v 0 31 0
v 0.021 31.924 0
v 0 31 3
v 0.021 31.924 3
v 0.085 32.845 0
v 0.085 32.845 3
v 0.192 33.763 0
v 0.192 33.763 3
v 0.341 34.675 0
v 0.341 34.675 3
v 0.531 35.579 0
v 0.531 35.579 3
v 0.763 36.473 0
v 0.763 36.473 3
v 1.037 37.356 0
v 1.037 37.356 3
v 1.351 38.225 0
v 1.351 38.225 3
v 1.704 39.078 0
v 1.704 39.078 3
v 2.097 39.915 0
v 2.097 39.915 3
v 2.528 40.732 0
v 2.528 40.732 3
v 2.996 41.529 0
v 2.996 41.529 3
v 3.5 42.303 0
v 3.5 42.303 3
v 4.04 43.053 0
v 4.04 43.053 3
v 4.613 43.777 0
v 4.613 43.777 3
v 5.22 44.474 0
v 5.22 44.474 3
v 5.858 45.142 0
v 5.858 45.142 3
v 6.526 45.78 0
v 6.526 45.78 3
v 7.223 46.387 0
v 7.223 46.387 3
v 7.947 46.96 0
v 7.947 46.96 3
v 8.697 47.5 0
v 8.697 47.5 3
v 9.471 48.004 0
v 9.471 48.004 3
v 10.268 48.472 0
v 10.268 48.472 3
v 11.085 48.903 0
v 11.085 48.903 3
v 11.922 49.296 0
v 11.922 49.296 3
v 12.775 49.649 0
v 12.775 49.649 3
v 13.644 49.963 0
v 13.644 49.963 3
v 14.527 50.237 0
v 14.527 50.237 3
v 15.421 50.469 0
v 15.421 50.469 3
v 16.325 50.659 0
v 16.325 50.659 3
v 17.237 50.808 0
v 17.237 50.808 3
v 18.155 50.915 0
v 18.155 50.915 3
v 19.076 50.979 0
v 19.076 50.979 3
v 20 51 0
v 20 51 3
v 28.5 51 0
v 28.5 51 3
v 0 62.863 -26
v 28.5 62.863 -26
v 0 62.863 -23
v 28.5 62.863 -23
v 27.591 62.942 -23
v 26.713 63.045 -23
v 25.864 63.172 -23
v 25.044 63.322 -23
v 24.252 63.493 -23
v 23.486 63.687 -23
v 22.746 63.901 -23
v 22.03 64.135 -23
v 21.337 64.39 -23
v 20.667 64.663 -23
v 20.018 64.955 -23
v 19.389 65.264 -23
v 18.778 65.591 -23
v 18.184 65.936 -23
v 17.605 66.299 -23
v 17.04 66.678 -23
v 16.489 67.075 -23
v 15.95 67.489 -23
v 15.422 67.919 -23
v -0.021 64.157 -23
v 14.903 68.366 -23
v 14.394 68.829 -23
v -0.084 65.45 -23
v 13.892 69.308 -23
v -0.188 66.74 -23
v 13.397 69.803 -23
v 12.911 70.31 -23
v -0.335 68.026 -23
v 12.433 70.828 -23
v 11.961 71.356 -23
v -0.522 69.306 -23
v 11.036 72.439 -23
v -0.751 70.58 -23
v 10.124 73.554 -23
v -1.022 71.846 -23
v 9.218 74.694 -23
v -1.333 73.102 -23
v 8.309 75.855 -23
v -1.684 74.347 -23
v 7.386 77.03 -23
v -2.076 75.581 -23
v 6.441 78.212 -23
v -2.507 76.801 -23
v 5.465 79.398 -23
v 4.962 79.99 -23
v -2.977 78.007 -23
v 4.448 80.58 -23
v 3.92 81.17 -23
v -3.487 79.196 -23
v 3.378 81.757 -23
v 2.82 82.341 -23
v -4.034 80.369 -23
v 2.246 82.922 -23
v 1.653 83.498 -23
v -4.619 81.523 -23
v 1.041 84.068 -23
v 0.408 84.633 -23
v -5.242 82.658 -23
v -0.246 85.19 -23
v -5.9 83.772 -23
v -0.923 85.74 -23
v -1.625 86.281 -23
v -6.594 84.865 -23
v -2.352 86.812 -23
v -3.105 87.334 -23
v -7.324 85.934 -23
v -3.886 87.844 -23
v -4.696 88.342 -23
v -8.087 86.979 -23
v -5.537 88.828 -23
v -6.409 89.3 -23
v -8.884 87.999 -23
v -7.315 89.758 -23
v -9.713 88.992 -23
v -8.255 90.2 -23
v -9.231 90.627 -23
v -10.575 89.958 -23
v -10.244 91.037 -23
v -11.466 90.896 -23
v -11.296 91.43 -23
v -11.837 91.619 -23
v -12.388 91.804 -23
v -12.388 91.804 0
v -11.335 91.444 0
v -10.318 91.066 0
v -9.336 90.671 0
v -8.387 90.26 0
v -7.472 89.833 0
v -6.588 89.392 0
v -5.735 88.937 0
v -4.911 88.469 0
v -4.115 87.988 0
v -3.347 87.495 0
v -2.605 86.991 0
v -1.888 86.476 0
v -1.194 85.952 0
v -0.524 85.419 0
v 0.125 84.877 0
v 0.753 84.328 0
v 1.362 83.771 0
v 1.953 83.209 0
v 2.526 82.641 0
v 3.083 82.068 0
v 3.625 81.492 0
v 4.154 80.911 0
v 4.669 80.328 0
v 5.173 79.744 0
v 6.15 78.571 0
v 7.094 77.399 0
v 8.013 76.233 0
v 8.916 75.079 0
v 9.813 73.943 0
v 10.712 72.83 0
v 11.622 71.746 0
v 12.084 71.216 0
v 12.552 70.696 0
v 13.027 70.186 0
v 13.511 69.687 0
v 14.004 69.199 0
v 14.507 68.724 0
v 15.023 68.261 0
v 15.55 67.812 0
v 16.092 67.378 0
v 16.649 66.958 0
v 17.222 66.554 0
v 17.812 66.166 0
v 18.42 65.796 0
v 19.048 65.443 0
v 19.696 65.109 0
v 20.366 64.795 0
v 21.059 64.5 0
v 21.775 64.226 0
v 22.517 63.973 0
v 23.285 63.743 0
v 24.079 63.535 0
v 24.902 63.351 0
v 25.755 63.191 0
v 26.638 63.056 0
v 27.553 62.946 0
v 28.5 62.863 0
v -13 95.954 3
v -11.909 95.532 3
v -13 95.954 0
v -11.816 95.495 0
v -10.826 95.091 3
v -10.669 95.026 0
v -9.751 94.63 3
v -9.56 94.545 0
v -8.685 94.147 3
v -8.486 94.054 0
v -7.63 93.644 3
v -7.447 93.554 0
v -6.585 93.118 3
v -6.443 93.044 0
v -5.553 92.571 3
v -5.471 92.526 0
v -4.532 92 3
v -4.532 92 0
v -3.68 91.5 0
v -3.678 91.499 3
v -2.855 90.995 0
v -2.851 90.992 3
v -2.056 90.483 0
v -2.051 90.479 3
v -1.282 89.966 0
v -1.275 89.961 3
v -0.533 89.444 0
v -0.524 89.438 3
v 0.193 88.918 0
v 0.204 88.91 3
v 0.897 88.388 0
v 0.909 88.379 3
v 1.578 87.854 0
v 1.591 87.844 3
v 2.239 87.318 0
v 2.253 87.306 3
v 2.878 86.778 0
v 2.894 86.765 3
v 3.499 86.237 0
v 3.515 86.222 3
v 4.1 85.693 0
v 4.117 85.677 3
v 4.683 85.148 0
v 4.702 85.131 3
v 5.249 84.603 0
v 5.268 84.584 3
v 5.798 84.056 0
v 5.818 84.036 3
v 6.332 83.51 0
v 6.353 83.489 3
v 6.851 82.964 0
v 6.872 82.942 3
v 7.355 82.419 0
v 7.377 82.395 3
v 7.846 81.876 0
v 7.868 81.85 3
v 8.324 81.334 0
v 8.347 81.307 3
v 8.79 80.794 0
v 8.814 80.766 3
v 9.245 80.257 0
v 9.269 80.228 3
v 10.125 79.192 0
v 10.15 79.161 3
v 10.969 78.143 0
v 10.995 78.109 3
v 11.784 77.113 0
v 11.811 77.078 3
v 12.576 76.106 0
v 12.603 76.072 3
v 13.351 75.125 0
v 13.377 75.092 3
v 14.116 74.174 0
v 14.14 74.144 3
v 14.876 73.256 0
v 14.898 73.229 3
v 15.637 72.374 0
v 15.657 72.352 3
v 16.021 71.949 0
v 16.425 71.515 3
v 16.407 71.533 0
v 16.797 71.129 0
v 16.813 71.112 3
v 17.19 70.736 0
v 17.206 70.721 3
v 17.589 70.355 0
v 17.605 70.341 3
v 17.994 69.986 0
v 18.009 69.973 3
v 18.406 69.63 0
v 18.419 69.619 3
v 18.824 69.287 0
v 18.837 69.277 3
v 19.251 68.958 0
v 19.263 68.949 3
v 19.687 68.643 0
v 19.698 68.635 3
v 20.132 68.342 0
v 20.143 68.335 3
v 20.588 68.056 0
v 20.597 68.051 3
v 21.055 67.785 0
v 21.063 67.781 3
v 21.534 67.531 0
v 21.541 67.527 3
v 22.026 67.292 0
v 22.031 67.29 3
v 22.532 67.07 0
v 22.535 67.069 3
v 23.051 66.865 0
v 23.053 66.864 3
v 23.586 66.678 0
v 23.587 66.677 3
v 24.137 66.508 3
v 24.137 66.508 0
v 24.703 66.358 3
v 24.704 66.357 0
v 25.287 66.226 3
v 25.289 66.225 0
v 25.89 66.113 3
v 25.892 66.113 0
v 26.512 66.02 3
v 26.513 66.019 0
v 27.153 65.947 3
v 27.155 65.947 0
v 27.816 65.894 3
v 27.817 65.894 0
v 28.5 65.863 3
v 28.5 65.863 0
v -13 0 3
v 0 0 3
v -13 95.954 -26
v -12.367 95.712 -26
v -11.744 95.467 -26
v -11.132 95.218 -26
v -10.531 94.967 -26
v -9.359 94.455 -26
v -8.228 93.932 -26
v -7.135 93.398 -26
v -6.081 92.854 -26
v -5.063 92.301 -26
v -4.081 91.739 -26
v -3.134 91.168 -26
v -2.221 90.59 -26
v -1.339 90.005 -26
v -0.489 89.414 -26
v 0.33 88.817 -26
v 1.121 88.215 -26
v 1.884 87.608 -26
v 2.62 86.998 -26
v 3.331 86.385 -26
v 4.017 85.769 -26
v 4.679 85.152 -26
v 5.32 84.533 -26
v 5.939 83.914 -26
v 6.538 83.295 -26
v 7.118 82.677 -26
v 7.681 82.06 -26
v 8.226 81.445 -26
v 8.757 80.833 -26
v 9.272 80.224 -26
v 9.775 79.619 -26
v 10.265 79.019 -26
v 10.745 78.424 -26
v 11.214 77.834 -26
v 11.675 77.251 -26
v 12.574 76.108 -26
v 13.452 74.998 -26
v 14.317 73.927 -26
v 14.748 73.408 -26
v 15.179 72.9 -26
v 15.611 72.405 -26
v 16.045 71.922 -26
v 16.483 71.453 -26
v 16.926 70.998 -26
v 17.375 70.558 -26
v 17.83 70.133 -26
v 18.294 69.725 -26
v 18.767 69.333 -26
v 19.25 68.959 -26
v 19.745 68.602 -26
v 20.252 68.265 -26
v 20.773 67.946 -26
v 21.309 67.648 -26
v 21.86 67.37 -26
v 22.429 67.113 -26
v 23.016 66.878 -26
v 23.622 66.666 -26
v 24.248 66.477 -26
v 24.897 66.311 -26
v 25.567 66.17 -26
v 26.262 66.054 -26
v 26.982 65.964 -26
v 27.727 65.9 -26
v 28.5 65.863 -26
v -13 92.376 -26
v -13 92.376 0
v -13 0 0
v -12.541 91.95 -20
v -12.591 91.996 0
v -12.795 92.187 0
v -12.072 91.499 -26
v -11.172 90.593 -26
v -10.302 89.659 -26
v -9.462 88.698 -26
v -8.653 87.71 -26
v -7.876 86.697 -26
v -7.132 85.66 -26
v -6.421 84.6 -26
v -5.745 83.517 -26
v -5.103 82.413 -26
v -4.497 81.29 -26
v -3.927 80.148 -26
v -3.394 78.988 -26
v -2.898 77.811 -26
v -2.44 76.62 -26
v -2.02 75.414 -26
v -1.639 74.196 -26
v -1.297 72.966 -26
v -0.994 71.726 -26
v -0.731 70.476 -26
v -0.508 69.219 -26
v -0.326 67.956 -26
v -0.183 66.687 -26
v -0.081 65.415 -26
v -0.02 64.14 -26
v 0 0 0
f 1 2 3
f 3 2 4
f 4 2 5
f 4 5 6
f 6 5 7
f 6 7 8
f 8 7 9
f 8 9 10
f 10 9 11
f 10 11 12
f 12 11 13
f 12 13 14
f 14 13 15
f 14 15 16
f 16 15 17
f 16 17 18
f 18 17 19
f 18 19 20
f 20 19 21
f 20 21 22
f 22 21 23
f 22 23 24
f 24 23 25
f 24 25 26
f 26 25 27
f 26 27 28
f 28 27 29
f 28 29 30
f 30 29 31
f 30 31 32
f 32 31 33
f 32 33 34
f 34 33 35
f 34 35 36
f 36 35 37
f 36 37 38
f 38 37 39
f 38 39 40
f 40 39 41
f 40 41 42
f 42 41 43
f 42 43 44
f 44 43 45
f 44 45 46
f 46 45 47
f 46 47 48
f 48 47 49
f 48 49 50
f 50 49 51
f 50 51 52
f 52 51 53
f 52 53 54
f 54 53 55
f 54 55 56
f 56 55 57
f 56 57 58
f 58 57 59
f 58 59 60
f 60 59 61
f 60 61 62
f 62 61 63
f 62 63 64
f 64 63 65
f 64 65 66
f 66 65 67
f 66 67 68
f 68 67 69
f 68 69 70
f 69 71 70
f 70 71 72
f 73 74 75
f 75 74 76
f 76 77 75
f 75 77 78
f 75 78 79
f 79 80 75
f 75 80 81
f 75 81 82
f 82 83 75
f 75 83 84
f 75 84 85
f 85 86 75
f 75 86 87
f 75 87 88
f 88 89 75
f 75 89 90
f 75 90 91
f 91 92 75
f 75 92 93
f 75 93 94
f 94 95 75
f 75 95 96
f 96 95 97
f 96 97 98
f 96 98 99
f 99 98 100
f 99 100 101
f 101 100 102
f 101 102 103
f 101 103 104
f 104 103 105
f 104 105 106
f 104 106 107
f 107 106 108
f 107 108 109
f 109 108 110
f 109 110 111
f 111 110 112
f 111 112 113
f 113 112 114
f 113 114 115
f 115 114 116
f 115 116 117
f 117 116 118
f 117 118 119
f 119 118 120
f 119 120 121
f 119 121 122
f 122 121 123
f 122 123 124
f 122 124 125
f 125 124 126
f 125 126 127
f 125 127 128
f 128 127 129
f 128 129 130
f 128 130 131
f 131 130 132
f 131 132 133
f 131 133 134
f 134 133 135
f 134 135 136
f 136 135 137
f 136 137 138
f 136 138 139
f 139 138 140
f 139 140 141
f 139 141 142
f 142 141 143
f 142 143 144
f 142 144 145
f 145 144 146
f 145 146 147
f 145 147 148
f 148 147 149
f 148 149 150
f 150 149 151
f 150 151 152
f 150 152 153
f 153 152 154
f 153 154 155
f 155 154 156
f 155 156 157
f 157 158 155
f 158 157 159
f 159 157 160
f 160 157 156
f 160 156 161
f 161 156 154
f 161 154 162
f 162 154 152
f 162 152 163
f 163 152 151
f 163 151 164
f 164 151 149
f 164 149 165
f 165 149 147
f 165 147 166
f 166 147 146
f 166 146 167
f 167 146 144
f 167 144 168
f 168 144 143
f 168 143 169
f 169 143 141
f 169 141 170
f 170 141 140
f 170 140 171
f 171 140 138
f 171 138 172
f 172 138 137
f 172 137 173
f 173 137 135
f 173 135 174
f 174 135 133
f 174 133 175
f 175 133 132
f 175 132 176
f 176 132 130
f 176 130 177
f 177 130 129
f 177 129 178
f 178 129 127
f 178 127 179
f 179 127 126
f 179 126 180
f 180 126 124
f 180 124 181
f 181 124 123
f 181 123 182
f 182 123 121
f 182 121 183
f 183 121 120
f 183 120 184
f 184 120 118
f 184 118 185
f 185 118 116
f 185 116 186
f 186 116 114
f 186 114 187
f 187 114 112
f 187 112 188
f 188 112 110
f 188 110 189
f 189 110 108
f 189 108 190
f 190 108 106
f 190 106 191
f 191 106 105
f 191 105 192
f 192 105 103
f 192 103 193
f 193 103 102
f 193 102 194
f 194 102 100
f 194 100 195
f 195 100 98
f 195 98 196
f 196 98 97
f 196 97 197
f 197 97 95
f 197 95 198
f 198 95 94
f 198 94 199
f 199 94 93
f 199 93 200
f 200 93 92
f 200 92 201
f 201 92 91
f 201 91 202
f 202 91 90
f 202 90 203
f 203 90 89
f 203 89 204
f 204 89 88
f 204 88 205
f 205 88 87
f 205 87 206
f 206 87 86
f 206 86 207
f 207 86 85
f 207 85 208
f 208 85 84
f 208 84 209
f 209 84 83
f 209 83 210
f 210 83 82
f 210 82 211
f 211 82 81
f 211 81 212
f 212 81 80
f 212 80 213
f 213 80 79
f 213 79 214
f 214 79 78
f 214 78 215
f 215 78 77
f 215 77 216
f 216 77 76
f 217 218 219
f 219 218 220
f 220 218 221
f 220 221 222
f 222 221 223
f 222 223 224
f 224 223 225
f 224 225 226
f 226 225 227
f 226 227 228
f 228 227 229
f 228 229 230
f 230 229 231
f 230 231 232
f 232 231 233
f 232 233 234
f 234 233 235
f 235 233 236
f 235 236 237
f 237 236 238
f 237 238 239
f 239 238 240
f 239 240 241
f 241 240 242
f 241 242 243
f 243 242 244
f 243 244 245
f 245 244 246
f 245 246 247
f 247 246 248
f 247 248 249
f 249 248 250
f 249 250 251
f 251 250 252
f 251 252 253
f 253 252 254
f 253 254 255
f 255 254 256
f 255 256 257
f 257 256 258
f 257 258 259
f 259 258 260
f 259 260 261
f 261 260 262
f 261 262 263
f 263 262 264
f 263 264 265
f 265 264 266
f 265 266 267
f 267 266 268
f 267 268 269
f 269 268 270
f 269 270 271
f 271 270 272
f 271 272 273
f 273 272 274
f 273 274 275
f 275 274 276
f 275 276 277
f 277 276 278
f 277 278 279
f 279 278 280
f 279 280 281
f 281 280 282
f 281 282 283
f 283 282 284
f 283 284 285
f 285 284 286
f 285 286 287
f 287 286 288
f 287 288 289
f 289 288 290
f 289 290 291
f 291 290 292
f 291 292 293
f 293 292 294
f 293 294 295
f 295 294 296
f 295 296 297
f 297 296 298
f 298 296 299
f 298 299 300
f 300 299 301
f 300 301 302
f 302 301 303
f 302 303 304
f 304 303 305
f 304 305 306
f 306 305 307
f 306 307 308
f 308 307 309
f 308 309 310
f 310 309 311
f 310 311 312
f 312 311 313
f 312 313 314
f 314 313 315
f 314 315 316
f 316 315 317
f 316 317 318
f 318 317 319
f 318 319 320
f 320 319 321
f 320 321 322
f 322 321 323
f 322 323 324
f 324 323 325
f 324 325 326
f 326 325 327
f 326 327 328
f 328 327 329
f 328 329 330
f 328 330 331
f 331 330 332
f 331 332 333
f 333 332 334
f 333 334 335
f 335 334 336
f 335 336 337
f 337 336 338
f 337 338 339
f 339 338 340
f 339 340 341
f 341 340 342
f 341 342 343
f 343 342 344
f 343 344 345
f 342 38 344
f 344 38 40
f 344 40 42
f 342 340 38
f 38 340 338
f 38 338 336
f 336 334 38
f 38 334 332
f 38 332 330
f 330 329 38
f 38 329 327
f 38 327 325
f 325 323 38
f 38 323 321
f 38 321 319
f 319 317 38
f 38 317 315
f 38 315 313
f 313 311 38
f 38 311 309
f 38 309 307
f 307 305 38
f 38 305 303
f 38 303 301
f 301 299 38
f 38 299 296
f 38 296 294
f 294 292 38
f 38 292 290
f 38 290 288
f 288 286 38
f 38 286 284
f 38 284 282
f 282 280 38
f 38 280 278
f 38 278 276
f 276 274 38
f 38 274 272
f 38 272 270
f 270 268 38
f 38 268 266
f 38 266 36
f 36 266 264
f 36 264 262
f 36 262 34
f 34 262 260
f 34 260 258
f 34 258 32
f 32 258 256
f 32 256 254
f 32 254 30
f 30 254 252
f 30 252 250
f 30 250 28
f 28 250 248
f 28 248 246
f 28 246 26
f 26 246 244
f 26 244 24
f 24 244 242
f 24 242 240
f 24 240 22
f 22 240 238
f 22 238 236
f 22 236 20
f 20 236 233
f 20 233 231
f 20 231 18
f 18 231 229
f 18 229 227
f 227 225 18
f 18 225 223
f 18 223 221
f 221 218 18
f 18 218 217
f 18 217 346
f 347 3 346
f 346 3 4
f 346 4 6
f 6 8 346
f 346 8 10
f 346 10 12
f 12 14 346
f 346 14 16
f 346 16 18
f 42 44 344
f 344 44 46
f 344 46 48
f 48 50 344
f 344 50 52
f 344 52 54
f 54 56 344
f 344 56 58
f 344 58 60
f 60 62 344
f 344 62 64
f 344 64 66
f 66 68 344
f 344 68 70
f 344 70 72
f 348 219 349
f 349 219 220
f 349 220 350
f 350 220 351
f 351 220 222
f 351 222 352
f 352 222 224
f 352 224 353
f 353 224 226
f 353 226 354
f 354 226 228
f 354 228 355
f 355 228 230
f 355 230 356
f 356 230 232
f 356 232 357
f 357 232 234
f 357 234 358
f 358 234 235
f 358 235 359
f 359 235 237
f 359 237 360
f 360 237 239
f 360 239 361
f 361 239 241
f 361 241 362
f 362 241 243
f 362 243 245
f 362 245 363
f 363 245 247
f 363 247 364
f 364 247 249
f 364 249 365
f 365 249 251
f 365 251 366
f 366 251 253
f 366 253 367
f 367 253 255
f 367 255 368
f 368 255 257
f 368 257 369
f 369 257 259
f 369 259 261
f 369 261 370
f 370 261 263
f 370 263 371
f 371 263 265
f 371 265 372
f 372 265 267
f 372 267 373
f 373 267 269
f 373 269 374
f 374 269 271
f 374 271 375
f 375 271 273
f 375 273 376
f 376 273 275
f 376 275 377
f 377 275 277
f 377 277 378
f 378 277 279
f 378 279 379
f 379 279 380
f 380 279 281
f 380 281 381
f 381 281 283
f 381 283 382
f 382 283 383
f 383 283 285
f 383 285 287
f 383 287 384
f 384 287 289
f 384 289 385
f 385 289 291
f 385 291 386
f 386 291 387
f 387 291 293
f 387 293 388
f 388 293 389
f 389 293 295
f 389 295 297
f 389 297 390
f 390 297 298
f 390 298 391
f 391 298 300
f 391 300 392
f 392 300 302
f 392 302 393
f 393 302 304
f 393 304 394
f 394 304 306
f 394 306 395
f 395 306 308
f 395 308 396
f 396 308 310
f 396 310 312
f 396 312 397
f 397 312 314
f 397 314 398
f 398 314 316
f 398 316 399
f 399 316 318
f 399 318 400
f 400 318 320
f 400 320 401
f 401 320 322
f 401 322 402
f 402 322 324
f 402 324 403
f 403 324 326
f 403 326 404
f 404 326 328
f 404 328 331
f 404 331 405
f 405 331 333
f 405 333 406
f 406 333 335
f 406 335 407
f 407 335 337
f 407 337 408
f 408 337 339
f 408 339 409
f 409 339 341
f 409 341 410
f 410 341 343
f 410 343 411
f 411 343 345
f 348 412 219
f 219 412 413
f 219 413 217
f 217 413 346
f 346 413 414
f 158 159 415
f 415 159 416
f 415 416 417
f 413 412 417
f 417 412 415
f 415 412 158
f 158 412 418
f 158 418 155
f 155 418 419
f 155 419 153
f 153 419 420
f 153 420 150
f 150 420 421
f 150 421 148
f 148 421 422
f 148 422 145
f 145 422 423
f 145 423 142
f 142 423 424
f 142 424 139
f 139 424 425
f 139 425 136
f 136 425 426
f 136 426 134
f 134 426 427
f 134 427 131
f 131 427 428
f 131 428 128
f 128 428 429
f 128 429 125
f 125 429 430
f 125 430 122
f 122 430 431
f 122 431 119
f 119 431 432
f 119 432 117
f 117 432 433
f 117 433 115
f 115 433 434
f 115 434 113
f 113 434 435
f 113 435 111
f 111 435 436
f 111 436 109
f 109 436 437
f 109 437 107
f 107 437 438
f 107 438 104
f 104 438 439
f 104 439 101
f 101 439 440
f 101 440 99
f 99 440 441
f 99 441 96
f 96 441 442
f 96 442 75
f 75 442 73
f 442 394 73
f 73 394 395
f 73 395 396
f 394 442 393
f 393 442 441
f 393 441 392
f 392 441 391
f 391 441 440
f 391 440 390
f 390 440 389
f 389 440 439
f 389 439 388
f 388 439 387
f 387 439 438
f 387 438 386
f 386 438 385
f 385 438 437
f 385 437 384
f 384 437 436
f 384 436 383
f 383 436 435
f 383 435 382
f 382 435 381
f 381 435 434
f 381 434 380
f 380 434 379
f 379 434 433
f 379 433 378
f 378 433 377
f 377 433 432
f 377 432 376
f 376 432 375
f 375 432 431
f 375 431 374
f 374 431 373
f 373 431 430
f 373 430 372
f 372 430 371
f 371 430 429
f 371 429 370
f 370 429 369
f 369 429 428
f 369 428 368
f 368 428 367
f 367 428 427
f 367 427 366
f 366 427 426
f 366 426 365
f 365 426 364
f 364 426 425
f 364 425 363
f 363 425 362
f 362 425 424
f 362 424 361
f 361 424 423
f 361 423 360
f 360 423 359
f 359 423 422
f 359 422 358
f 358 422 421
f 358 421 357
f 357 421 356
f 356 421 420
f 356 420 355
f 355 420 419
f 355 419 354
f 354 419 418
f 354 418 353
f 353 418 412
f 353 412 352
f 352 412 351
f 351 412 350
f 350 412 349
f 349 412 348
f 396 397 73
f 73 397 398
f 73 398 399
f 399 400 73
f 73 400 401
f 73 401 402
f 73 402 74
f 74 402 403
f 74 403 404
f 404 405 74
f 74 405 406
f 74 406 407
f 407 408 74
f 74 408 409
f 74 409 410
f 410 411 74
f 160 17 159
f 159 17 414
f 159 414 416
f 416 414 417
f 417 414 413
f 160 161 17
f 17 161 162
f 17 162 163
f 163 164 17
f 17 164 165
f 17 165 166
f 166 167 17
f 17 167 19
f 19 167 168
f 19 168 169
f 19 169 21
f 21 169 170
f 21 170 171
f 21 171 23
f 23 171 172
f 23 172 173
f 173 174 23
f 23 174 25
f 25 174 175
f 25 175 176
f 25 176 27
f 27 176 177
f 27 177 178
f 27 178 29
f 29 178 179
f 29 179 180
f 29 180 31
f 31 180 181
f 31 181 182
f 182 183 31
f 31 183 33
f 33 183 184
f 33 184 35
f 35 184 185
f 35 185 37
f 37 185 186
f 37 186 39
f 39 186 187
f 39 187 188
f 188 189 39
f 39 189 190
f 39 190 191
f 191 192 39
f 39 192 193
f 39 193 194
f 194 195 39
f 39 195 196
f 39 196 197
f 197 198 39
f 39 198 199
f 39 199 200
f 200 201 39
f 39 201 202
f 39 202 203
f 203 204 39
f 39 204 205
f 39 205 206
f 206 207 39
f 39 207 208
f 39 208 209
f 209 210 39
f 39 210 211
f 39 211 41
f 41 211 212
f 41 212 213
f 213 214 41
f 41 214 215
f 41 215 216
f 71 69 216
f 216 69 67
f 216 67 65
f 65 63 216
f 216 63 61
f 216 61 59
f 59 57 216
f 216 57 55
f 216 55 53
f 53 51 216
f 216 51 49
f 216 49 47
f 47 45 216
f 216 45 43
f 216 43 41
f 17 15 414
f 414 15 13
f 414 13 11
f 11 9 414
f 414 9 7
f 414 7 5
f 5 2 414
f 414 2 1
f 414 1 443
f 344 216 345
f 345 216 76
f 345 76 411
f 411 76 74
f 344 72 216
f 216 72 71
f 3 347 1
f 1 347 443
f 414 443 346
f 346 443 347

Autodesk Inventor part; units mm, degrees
ref_plane "YZ Plane" through (0, 0, 0) normal (1, 0, 0) x (0, 1, 0)
ref_plane "XZ Plane" through (0, 0, 0) normal (0, 1, 0) x (-1, 0, 0)
ref_plane "XY Plane" through (0, 0, 0) normal (0, 0, 1) x (1, 0, 0)
sketch "Sketch1" plane through (0, 0, 0) normal (0, 0, 1) x (1, 0, 0)
  line L0 (0, 0) -> (-13, 0)
  line L1 (-13, 0) -> (-13, 92)
  line L2 (-13, 92) -> (0, 92)
  line L3 (0, 92) -> (0, 0)
  dimension "d0" = 13
  dimension "d1" = 92
extrude "Extrusion1" add sketch "Sketch1" along normal blind 3
sketch "Sketch3" plane through (0, 0, 3) normal (0, 0, 1) x (1, 0, 0)
  line L0 (0, 92) -> (-13, 92) projected
  line L1 (0, 92) -> (28.5, 92)
  line L2 (28.5, 92) -> (28.5, 51)
  line L3 (28.5, 51) -> (0, 51)
  line L4 (0, 51) -> (0, 92)
  point P0 (0, 0)
  dimension "d6" = 28.5
  dimension "d7" = 41
extrude "Extrusion3" add sketch "Sketch3" against normal up to surface (3 mm away)
sketch "Sketch4" plane through (0, 0, 0) normal (0, 0, -1) x (-1, 0, 0)
  arc A0 (40, 102.8631) -> (0, 62.8631) centre (40, 62.8631) ccw
  arc A1 (-28.5, 65.8631) -> (-42.9914, -4.1369) centre (-28.5, 29.3631) ccw
  line L0 (13, 92) -> (0, 92)
  line L1 (0, 92) -> (-28.5, 92)
  line L2 (-28.5, 92) -> (-28.5, 51)
  line L3 (-28.5, 92) -> (13, 92) projected
  line L4 (-28.5, 65.8631) -> (-28.5, 62.8631)
  line L5 (-28.5, 51) -> (-28.5, 92) projected
  line L6 (13, 92) -> (13, 89)
  line L7 (13, 92) -> (13, 0) projected
  arc A2 (40, 105.4873) -> (13, 95.9537) centre (40, 62.4873) ccw
  line L8 (13, 92) -> (13, 95.9537)
  line L9 (13, 92) -> (-10.5212, 84.6591) construction
  line L10 (-10.5212, 84.6591) -> (-7.75, 64.3631) construction
  line L11 (-7.75, 64.3631) -> (-28.5, 62.8631) construction
  spline S0 degree 3 poles (13, 92) (-10.5212, 84.6591) (-7.75, 64.3631) (-28.5, 62.8631) knots 1 1 1 1 2 2 2 2
  line L12 (13, 95.9537) -> (-14.25, 85.7047) construction
  line L13 (-14.25, 85.7047) -> (-11.7162, 66.3603) construction
  line L14 (-11.7162, 66.3603) -> (-28.5, 65.8631) construction
  spline S1 degree 3 poles (13, 95.9537) (-14.25, 85.7047) (-11.7162, 66.3603) (-28.5, 65.8631) knots 1 1 1 1 2 2 2 2
  point P0 (0, 0)
  point P1 (12.3882, 91.8042)
  point P2 (13, 92.3758)
  dimension "d10" = 3
  dimension "d11" = 3
extrude "Extrusion4" add sketch "Sketch4" along normal blind 26 contours A0 L0 S1 L8 | A0 S0 L2 S1 L0
sketch "Sketch5" plane through (0, 0, 0) normal (0, 0, -1) x (-1, 0, 0)
  spline S0 degree 3 poles (-28.5, 65.8631) (-13.6927, 66.3017) (-13.9211, 81.4099) (4.5317, 92) knots 0 0 0 0 1 1 1 1 projected
  line L0 (-28.5, 92) -> (4.5317, 92) projected
  line L1 (-28.5, 92) -> (-28.5, 65.8631) projected
  point P0 (0, 0)
extrude "Extrusion5" cut sketch "Sketch5" against normal blind 40
sketch "Sketch6" plane through (0, 0, 0) normal (0, 0, 1) x (1, 0, 0)
  line L0 (-4.5317, 92) -> (-12.5949, 92) projected
  spline S0 degree 3 poles (-13, 95.9537) (-9.7909, 94.7467) (-6.9949, 93.4136) (-4.5317, 92) knots 0 0 0 0 1 1 1 1 projected
  line L1 (-13, 92.3758) -> (-13, 95.9537) projected
  arc A0 (-12.5949, 92) -> (-13, 92.3758) centre (-40, 62.8631) ccw projected
  arc A1 (-12.5949, 92) -> (-13, 92.3758) centre (-40, 62.8631) ccw projected
  line L2 (-13, 92.3758) -> (-13, 92)
  line L3 (-13, 92) -> (-12.5949, 92)
  point P0 (0, 0)
extrude "Extrusion6" add sketch "Sketch6" along normal up to surface (3 mm away)
sketch "Sketch7" plane through (0, 0, -26) normal (0, 0, -1) x (-1, 0, 0)
  spline S0 degree 3 poles (-28.5, 62.8631) (-7.9317, 64.3502) (-10.4747, 84.3054) (12.3882, 91.8042) knots 1 1 1 1 1.991245 1.991245 1.991245 1.991245
  arc A0 (40, 102.8631) -> (0, 62.8631) centre (40, 62.8631) ccw
  line L0 (0, 62.8631) -> (-28.5, 62.8631)
  line L1 (-28.5, 62.8631) -> (-28.5, 65.8631)
  line L2 (-28.5, 51) -> (-28.5, 65.8631) projected
  point P0 (0, 0)
extrude "Extrusion7" add sketch "Sketch7" against normal blind 3
fillet "Fillet1" radius 20 1 edges at (0, 51, 1.5)
properties part number "obudowa przekładni 6"
